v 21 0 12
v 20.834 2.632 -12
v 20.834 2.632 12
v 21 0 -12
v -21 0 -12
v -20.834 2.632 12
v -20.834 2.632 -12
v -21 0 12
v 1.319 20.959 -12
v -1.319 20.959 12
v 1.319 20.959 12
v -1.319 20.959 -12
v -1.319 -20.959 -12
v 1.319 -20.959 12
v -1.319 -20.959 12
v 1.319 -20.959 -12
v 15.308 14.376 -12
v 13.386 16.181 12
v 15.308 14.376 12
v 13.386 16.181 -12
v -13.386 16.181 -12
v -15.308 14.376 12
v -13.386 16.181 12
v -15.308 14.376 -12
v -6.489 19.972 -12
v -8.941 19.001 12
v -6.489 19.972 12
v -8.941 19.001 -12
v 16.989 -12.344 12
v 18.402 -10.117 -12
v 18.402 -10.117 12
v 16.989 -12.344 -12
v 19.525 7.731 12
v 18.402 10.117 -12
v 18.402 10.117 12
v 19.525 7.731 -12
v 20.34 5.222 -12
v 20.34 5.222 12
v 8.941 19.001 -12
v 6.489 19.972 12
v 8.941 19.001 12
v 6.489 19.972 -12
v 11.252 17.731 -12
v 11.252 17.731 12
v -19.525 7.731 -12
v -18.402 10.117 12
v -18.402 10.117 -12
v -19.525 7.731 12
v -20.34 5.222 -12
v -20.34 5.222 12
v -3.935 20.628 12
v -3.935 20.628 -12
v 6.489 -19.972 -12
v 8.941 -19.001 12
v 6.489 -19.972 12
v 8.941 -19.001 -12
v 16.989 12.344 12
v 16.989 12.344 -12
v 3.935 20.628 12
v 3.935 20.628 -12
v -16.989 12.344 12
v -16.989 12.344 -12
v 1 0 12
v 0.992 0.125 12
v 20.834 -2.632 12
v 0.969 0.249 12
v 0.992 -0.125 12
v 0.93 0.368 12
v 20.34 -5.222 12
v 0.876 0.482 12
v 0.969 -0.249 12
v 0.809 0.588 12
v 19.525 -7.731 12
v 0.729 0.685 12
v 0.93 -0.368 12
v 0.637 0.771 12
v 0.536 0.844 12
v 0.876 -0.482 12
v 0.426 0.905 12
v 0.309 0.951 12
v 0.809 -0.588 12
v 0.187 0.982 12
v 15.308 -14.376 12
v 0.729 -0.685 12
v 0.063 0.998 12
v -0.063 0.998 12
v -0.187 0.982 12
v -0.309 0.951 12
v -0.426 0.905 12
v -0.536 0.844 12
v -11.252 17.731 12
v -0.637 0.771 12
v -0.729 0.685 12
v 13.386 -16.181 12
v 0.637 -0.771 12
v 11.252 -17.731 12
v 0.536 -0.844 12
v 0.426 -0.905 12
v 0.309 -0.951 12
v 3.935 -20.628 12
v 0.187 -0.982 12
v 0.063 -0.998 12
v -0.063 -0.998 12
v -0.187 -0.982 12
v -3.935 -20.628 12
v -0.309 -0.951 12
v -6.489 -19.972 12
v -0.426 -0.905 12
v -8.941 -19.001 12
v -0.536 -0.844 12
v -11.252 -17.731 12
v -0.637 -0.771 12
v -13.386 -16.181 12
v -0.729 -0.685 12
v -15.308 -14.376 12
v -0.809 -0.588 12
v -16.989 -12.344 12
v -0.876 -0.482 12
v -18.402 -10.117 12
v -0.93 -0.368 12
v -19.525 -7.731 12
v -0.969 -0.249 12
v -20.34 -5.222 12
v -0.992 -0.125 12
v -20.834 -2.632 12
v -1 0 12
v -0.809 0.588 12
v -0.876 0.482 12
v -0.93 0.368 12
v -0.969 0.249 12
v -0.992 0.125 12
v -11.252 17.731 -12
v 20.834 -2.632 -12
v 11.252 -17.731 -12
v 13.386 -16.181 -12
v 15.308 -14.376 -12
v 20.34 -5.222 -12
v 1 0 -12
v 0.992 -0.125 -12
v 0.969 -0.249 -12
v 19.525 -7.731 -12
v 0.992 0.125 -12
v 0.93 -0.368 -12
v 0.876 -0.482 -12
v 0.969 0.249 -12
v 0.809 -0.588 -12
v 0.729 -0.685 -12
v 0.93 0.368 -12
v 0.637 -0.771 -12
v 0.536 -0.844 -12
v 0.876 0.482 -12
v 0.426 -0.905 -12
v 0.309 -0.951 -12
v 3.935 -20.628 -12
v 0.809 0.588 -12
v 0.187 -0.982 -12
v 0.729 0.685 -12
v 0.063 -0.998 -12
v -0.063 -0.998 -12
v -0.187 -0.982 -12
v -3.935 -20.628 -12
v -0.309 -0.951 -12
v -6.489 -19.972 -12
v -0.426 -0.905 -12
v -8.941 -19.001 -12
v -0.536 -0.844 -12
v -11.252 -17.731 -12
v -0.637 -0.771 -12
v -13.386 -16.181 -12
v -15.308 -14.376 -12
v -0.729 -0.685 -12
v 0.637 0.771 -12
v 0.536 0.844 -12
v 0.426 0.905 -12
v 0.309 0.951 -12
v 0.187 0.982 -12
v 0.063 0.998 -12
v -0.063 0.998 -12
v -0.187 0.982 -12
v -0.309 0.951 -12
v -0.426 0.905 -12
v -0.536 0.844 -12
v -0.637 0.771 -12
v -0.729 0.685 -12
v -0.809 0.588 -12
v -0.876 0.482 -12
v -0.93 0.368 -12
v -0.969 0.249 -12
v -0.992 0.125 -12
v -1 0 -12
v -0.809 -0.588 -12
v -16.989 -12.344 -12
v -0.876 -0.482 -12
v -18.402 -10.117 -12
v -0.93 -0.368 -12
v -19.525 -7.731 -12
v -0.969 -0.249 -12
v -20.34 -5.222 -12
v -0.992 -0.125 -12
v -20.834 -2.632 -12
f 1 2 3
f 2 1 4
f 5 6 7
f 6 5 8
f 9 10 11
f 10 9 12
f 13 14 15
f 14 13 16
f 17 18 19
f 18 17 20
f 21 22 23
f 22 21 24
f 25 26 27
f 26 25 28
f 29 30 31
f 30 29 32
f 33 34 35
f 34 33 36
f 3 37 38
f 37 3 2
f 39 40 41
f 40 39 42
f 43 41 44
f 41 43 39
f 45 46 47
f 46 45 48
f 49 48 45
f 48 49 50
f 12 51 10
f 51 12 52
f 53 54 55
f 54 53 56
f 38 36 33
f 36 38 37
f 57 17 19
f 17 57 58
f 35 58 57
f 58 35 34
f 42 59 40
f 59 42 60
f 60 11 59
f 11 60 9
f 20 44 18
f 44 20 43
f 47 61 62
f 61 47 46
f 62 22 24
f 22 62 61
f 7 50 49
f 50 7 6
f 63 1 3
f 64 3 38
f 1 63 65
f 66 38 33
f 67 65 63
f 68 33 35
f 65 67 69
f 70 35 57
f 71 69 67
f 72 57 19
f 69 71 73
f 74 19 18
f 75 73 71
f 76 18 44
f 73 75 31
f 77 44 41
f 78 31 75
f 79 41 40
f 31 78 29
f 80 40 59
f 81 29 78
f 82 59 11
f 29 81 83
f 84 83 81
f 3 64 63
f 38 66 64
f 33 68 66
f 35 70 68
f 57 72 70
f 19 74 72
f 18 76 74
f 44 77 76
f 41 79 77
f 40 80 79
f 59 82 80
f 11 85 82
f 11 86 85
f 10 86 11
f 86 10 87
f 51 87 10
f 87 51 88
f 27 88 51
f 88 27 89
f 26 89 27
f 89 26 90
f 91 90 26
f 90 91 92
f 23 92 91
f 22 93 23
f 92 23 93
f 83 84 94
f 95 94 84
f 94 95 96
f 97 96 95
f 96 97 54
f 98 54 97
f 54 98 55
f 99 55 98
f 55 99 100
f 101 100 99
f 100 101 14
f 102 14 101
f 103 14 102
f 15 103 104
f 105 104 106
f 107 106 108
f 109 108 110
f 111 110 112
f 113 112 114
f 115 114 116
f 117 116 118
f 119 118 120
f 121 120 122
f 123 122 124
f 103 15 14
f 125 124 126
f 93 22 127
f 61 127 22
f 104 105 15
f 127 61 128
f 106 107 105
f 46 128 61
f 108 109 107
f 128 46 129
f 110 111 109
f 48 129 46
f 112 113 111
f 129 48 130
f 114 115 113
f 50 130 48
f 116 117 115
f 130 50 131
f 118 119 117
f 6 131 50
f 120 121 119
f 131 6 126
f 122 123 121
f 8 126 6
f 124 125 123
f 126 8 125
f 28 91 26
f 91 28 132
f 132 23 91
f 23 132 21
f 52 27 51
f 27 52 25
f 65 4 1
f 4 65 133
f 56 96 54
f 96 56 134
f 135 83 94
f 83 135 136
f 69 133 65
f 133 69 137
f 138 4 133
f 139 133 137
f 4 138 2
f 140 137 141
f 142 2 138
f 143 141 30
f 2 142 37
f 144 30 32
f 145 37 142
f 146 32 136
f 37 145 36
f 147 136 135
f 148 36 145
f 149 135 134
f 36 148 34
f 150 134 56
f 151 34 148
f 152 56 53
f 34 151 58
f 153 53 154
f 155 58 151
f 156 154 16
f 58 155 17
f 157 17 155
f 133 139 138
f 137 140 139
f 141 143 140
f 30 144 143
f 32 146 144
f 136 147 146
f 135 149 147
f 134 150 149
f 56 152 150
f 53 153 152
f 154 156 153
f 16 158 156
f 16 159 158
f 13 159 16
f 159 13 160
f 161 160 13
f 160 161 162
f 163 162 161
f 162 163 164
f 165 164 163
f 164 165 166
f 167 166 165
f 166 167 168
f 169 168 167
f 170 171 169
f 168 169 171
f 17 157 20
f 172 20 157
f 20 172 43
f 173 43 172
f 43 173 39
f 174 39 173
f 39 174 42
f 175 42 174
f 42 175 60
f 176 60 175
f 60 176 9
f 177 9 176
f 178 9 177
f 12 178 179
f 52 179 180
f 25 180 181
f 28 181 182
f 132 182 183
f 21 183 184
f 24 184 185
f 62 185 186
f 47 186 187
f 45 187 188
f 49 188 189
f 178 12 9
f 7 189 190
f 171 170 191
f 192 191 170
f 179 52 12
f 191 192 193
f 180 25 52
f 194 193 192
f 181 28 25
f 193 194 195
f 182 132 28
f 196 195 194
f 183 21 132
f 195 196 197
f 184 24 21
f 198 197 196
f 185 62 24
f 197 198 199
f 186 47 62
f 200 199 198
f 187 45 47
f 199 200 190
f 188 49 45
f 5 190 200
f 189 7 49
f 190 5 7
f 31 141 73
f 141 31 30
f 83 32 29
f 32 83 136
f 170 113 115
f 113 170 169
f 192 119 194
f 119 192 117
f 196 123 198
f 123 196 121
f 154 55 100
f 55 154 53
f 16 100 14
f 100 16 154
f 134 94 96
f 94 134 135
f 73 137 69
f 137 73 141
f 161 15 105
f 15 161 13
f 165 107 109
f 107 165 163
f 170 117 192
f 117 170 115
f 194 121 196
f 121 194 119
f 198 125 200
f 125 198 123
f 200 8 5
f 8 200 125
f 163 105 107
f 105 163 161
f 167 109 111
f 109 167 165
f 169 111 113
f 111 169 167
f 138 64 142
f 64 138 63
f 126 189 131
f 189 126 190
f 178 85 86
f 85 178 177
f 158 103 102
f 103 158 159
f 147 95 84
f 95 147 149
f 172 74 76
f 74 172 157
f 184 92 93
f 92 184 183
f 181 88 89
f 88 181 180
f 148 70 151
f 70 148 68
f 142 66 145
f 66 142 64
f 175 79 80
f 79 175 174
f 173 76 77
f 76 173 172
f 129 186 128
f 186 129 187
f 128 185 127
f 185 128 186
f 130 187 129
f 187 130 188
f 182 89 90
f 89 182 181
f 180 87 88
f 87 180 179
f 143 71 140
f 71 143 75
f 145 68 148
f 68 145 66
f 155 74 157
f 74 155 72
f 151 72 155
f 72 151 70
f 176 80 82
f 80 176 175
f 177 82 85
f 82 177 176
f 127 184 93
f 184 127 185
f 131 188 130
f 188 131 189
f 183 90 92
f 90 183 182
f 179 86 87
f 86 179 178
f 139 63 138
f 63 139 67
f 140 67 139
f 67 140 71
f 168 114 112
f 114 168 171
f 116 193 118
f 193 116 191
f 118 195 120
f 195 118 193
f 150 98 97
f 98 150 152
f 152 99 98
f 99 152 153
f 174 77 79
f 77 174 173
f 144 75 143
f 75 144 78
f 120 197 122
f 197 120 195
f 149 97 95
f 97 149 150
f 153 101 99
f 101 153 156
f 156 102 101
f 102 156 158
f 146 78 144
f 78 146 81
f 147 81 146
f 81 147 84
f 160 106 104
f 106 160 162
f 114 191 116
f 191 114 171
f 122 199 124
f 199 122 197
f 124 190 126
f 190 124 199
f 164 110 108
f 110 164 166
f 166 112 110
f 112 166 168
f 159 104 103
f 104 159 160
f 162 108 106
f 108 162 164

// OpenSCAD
$fn = 50;


difference() {
	union() {
		translate(v = [0, 0, -12.0000000000]) {
			cylinder(h = 24, r = 21.0000000000);
		}
	}
	union() {
		translate(v = [0, 0, -100.0000000000]) {
			cylinder(h = 200, r = 1.0000000000);
		}
	}
}
